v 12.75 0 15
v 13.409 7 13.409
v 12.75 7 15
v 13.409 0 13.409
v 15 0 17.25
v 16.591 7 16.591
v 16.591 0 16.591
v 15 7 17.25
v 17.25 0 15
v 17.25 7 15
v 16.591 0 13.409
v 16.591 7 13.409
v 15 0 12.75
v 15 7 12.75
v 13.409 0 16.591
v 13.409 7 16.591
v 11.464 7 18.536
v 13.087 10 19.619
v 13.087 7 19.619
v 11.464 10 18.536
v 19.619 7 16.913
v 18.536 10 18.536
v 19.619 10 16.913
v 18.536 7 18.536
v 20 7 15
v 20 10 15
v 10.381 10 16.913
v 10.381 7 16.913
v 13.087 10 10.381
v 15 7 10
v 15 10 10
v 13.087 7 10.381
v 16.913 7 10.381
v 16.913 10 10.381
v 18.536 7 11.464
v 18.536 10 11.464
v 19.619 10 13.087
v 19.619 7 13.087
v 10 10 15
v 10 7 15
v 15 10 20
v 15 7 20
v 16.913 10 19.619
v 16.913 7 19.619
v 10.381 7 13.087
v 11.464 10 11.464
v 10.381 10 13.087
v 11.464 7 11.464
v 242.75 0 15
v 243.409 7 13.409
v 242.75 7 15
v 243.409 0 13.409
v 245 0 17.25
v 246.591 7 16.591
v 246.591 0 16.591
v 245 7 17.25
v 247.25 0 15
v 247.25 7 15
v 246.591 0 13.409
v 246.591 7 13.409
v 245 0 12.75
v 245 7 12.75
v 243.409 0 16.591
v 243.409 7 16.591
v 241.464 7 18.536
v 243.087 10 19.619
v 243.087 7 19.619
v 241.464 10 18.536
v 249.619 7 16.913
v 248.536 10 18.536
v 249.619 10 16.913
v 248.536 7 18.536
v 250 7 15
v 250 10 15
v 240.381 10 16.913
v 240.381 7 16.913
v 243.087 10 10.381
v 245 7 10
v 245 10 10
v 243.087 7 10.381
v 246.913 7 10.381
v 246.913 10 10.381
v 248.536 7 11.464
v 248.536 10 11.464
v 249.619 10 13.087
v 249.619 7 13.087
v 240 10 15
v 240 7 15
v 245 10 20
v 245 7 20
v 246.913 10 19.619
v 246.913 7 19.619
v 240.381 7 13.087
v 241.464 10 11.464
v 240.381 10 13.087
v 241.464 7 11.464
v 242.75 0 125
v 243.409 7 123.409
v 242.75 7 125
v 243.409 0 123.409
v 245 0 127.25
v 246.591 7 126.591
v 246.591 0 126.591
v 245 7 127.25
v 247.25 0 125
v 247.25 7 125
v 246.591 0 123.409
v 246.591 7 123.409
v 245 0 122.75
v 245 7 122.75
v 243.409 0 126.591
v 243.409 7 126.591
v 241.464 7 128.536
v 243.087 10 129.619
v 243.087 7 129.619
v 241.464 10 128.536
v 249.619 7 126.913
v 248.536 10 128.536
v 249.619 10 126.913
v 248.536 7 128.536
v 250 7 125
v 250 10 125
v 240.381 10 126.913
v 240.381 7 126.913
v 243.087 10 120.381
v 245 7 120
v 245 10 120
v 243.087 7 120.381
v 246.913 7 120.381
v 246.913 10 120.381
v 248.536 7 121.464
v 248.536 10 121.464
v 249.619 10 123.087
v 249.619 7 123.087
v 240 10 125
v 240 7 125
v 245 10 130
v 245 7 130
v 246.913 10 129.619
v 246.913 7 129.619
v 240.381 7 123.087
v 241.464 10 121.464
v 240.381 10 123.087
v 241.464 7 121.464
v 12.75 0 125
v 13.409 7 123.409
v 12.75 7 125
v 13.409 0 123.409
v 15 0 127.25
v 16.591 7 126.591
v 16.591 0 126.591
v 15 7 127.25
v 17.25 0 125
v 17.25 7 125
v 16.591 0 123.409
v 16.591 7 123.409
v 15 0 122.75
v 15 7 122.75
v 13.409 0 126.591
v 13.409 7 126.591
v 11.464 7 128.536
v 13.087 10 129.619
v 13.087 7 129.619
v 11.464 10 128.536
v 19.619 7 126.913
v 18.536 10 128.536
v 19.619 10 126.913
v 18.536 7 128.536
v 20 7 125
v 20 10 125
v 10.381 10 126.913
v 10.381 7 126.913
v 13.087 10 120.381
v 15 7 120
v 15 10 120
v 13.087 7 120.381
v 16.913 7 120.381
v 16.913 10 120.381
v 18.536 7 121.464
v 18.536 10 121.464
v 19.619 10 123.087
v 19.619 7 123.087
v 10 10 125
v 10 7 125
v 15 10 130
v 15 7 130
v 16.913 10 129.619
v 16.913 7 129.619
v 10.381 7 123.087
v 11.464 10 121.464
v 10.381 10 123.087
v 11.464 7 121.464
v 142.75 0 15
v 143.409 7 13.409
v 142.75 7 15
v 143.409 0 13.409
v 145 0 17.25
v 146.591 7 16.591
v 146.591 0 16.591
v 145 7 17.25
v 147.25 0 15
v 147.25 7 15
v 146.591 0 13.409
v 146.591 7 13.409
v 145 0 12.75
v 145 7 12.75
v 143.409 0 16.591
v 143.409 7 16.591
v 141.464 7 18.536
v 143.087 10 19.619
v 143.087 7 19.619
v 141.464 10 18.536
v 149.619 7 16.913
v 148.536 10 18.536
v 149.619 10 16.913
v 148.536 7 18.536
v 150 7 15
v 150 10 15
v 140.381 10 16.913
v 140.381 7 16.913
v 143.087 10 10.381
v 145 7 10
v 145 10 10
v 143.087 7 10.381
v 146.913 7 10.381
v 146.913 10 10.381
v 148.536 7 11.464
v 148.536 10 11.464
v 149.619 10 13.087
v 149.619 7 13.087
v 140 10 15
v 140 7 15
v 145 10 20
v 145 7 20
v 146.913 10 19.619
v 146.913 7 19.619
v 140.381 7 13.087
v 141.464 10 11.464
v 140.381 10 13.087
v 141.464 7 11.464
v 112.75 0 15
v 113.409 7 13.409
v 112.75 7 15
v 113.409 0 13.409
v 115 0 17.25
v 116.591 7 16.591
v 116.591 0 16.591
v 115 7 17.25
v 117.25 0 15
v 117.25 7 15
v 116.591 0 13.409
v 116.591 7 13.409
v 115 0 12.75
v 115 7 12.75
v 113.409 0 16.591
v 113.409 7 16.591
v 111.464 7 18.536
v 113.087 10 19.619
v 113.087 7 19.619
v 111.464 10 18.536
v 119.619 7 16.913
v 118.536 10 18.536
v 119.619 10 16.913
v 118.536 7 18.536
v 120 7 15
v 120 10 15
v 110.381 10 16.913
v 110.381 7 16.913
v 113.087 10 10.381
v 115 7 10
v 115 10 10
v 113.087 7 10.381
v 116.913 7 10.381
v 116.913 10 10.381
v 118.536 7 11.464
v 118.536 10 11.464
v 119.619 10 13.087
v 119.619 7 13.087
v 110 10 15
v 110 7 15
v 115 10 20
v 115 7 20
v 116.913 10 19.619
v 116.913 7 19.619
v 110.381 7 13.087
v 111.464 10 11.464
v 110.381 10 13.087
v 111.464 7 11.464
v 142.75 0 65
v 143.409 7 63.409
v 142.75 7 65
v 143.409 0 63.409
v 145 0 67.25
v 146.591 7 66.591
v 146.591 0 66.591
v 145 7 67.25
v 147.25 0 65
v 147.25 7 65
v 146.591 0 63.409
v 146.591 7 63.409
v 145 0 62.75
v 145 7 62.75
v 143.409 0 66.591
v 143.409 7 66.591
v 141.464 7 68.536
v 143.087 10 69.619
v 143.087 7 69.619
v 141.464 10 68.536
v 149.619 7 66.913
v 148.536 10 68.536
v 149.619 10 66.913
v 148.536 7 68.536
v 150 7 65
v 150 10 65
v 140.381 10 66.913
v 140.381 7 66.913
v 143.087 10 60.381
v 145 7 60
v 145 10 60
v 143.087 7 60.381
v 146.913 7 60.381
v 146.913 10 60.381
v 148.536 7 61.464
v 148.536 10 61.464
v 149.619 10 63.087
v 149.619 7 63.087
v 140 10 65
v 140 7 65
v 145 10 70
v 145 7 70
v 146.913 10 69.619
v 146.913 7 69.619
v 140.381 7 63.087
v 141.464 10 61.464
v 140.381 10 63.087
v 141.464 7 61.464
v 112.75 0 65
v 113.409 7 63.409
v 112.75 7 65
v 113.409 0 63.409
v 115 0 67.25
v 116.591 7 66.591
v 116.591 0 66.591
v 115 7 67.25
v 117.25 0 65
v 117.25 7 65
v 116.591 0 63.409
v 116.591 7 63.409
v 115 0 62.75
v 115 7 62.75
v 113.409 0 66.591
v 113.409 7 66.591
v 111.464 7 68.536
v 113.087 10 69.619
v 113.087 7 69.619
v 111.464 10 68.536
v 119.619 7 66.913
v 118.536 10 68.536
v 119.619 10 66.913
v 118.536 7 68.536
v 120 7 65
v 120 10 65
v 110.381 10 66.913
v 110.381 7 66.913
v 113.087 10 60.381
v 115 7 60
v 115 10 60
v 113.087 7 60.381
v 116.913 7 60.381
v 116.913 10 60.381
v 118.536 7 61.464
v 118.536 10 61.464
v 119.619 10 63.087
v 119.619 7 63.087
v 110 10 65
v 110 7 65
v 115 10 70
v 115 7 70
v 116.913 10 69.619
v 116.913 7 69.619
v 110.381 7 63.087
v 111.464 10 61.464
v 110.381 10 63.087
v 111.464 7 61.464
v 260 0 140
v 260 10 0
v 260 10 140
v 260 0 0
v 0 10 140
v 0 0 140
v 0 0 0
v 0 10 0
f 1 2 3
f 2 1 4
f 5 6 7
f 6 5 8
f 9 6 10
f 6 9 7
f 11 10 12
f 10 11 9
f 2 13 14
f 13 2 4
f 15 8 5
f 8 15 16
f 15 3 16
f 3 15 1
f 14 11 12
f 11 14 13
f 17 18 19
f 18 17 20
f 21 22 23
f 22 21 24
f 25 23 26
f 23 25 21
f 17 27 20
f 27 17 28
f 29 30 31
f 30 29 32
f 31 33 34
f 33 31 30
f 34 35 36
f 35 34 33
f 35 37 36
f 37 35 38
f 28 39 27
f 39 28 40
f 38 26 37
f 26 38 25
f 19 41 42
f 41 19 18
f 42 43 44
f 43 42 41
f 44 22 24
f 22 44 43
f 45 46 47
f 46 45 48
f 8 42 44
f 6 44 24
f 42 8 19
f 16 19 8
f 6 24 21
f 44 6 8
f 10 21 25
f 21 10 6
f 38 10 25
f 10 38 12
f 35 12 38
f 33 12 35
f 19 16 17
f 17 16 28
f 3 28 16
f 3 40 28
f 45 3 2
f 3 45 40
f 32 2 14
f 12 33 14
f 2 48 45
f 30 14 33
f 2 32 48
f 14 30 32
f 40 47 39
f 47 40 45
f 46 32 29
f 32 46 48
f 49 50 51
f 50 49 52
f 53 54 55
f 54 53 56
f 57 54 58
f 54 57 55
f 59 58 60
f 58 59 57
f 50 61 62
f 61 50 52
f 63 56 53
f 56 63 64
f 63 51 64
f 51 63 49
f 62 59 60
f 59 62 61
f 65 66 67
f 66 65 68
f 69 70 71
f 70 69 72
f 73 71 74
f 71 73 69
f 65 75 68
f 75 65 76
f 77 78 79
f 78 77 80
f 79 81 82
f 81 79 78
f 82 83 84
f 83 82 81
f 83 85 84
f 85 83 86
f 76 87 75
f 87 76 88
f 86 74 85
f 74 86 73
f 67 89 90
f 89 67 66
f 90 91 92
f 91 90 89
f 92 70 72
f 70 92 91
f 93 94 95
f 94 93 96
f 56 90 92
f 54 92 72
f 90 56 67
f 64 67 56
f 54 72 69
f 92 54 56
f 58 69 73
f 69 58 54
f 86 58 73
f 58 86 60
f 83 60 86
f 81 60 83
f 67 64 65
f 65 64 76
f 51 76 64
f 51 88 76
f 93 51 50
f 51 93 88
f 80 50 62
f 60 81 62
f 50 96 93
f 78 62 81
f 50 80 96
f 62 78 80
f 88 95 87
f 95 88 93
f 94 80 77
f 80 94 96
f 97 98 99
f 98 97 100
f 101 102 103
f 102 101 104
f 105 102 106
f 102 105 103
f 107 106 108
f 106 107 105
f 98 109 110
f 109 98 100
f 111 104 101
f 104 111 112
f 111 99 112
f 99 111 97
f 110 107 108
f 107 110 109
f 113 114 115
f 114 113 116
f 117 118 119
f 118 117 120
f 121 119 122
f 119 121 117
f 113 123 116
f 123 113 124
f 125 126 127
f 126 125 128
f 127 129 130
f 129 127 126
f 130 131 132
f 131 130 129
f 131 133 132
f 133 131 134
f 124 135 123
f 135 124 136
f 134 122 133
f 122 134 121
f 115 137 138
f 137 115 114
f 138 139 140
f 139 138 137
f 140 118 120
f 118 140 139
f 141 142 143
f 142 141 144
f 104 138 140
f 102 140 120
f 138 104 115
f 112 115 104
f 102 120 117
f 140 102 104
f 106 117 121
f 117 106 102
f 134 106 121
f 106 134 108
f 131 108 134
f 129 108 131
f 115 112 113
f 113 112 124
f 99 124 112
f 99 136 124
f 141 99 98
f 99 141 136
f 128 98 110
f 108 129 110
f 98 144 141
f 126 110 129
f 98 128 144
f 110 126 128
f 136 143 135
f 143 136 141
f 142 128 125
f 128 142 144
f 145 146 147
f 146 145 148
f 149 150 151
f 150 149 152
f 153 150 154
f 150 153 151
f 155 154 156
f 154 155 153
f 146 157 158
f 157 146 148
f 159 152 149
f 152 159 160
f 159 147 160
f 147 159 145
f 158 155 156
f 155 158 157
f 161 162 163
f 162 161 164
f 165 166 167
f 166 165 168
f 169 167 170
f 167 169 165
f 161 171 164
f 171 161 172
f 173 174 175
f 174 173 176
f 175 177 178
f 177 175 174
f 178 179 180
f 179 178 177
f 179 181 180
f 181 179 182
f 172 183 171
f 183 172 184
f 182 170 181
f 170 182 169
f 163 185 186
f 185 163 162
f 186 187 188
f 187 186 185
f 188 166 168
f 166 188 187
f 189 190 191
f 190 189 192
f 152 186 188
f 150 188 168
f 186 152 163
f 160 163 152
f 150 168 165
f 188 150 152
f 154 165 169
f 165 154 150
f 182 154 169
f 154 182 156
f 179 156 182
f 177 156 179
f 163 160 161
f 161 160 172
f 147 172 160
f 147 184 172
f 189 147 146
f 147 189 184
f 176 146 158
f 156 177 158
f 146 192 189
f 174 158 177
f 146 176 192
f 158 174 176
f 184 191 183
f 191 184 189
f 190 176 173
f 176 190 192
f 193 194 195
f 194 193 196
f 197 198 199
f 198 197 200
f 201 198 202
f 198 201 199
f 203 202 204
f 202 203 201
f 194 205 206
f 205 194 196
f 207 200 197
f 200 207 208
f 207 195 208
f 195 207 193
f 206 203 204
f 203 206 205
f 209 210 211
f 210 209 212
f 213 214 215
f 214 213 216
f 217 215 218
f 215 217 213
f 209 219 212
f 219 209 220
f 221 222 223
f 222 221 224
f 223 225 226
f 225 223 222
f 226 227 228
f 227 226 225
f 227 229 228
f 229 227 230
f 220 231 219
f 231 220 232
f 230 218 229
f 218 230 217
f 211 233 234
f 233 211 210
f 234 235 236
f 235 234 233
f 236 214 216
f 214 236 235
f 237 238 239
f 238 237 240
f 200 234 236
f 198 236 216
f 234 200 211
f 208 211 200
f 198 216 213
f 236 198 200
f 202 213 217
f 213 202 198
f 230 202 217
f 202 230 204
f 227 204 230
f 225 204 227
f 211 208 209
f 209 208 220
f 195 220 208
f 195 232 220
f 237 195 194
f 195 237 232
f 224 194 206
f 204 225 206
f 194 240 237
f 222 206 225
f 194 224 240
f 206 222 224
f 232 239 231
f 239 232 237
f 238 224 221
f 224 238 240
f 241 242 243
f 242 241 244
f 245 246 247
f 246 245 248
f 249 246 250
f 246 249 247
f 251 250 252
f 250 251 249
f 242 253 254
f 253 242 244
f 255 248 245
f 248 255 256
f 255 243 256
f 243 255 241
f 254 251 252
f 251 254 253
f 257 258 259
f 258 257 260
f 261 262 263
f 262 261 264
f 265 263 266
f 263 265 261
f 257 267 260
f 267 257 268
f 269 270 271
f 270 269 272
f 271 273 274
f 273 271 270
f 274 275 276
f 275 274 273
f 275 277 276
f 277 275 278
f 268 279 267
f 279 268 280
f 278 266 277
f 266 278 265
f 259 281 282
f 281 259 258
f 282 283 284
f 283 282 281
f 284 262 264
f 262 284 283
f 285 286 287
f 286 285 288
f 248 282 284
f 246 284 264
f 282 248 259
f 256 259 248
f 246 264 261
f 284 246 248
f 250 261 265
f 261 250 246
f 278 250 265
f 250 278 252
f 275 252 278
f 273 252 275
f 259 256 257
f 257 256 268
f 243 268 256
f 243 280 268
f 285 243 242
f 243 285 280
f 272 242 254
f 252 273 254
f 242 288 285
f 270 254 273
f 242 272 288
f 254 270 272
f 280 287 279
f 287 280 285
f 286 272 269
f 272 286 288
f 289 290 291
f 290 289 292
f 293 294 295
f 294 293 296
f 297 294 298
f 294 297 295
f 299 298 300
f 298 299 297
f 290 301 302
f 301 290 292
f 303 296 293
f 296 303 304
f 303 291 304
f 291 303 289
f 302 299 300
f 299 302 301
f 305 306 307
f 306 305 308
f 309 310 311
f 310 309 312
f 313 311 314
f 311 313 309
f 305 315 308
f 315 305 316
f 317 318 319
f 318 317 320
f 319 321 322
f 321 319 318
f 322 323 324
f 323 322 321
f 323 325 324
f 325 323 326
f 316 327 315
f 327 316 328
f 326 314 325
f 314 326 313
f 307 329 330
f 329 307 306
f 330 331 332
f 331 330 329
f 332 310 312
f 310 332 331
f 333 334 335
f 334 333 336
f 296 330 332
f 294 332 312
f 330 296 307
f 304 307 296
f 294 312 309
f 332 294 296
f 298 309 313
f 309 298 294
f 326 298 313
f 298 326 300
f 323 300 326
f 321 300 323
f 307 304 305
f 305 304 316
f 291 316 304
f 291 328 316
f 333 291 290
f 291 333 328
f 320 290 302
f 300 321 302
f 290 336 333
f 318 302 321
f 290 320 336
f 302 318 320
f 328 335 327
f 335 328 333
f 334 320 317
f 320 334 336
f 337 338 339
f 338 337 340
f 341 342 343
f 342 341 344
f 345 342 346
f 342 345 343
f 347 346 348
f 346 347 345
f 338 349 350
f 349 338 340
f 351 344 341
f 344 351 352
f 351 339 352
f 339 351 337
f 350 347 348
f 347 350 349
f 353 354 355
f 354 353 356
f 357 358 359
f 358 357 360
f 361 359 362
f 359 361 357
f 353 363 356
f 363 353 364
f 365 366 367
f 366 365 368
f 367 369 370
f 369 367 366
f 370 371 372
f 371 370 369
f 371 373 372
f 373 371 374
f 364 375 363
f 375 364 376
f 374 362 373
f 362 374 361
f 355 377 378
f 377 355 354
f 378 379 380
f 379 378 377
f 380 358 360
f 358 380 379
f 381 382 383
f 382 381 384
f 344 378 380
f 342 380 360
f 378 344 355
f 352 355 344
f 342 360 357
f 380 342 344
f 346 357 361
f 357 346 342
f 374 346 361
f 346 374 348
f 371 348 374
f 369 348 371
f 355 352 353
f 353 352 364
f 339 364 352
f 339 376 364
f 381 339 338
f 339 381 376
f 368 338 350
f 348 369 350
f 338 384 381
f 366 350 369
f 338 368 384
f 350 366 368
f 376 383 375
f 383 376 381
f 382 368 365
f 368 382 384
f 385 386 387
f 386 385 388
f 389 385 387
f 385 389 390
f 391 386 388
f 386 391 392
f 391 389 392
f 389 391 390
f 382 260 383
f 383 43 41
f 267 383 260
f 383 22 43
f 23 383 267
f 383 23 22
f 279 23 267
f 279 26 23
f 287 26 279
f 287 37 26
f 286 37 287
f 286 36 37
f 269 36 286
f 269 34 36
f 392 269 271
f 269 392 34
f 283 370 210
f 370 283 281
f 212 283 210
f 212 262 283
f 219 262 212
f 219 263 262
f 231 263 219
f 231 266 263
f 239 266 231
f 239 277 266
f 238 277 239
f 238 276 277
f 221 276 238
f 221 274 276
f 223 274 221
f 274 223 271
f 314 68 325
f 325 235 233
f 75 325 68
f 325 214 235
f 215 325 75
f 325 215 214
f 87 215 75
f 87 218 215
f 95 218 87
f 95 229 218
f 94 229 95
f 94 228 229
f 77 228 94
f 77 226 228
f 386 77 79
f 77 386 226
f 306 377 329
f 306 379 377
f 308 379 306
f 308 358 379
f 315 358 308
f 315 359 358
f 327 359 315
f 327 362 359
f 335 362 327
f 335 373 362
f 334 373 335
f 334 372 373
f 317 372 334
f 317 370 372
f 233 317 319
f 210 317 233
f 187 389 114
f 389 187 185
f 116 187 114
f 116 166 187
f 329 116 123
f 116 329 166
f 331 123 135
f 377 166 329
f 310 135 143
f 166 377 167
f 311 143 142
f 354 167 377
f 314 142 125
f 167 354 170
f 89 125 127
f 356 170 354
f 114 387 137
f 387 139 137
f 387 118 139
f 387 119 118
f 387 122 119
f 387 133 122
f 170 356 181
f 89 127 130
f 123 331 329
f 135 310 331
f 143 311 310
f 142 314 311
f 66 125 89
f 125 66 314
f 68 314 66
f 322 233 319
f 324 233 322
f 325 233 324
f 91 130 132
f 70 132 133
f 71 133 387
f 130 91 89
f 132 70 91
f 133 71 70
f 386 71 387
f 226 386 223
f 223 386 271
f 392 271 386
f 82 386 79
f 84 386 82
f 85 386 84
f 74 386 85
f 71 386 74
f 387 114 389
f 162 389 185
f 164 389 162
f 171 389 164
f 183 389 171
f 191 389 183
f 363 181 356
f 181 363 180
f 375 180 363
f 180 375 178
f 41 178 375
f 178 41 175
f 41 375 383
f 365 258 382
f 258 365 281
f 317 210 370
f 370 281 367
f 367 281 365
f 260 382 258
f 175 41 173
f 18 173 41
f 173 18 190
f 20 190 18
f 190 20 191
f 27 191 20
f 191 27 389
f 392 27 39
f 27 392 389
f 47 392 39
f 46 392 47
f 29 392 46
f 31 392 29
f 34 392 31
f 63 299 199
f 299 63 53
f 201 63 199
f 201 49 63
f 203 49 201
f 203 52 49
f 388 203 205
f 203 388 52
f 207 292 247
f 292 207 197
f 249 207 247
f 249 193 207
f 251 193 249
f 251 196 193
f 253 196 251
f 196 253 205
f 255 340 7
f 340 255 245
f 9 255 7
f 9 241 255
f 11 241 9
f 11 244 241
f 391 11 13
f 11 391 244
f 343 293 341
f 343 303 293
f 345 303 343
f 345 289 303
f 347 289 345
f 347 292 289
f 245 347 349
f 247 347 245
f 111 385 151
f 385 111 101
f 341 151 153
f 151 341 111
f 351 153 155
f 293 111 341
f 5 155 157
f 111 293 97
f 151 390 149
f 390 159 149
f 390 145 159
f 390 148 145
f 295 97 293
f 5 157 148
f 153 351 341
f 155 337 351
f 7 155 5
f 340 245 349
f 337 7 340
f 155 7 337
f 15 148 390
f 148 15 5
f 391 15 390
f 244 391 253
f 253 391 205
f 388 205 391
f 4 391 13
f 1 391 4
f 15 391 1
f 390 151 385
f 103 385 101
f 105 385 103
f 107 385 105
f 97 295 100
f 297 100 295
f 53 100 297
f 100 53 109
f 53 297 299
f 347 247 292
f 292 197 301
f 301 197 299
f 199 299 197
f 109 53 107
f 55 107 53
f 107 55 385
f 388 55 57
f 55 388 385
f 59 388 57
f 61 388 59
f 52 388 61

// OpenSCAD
// file: towera.scad
slicesize = 25.5;
// 200 x 170 x infinite

module cutter(cutsize)
{
    translate([-5,-5,cutsize]) cube([280,900,131]);
    translate([-5,-5,-131])    cube([280,900,131]);
}

module towera(){

import("/Volumes/homes/gwest/cnc/rocketstove/Sidewinder/01.stl");
}

module hole()
{
    cylinder(r=4.22/2,h=142,$fn=100);
    translate([0,0,141-4])  cylinder(r=10/2,h=5,$fn=100);
    cylinder(r=9.6/2,h=5,$fn=5);
    
}
module holes()
{
    for ( i = [35 : 100 : 875] ){
      translate([10,i,-1]) hole();
      translate([250,i,-1]) hole();  
      translate([130-25,i,15]) rotate([0,90,0]) cylinder(r=9.6,h=50);  
      translate([130-25,i,130-3]) rotate([0,90,0]) cylinder(r=9.6,h=50); 
      
      
    } 
    translate([15,42,15]) rotate([90,0,0]) cylinder(r=4.22/2,h=50);
    translate([260-15,42,15]) rotate([90,0,0]) cylinder(r=4.22/2,h=50); 
    translate([260-15,42,140-15]) rotate([90,0,0]) cylinder(r=4.22/2,h=50);
    translate([15,42,140-15]) rotate([90,0,0]) cylinder(r=4.22/2,h=50); 
    
    translate([15,884,15]) rotate([90,0,0]) cylinder(r=4.22/2,h=50);
    translate([260-15,884,15]) rotate([90,0,0]) cylinder(r=4.22/2,h=50); 
    translate([260-15,884,140-15]) rotate([90,0,0]) cylinder(r=4.22/2,h=50);
    translate([15,884,140-15]) rotate([90,0,0]) cylinder(r=4.22/2,h=50); 
    
    translate([160-15,884,15]) rotate([90,0,0]) cylinder(r=4.22/2,h=50);
    translate([115,884,15]) rotate([90,0,0]) cylinder(r=4.22/2,h=50);
    translate([160-15,884,65]) rotate([90,0,0]) cylinder(r=4.22/2,h=50);
    translate([115,884,65]) rotate([90,0,0]) cylinder(r=4.22/2,h=50);  
    
    translate([160-15,10,15]) rotate([90,0,0]) cylinder(r=4.22/2,h=50);
    translate([115,10,15]) rotate([90,0,0]) cylinder(r=4.22/2,h=50);
    translate([160-15,10,65]) rotate([90,0,0]) cylinder(r=4.22/2,h=50);
    translate([115,10,65]) rotate([90,0,0]) cylinder(r=4.22/2,h=50);  
       
}
module towera_mold()
{
  difference(){
    cube([260,880,140]);
    translate([430+25,880+.5,-354+11]) rotate([90,-90,0]) towera();
    holes();
    }
}

module cshole()
{
    cylinder(r=4.5/2,h=20);
    cylinder(r=10/2,h=5);
    
}
module front_plate()
{
    difference(){
        cube([260,10,140]);
        translate([15,12,15]) rotate([90,0,0]) cshole();
        translate([260-15,12,15]) rotate([90,0,0]) cshole();
        translate([260-15,12,140-15]) rotate([90,0,0]) cshole();
        translate([15,12,140-15]) rotate([90,0,0]) cshole();
        
        translate([160-15,12,15]) rotate([90,0,0]) cshole();
        translate([115,12,15]) rotate([90,0,0]) cshole();
        translate([160-15,12,65]) rotate([90,0,0]) cshole();
        translate([115,12,65]) rotate([90,0,0]) cshole();  
        
        translate([430+25,50,-354+11]) rotate([90,-90,0]) towera();
    }
    
}

module back_plate()
{
    difference(){
        cube([260,10,140]);
        translate([15,12,15]) rotate([90,0,0]) cshole();
        translate([260-15,12,15]) rotate([90,0,0]) cshole();
        translate([260-15,12,140-15]) rotate([90,0,0]) cshole();
        translate([15,12,140-15]) rotate([90,0,0]) cshole();
        
        translate([160-15,12,15]) rotate([90,0,0]) cshole();
        translate([115,12,15]) rotate([90,0,0]) cshole();
        translate([160-15,12,65]) rotate([90,0,0]) cshole();
        translate([115,12,65]) rotate([90,0,0]) cshole();  
        
    }
    
}

//towera();
//towera_mold();
//front_plate();
//back_plate();
// main file
use <towera.scad>;

// 200 x 170 x infinite
//  cube([260,880,130]);

back_plate();
